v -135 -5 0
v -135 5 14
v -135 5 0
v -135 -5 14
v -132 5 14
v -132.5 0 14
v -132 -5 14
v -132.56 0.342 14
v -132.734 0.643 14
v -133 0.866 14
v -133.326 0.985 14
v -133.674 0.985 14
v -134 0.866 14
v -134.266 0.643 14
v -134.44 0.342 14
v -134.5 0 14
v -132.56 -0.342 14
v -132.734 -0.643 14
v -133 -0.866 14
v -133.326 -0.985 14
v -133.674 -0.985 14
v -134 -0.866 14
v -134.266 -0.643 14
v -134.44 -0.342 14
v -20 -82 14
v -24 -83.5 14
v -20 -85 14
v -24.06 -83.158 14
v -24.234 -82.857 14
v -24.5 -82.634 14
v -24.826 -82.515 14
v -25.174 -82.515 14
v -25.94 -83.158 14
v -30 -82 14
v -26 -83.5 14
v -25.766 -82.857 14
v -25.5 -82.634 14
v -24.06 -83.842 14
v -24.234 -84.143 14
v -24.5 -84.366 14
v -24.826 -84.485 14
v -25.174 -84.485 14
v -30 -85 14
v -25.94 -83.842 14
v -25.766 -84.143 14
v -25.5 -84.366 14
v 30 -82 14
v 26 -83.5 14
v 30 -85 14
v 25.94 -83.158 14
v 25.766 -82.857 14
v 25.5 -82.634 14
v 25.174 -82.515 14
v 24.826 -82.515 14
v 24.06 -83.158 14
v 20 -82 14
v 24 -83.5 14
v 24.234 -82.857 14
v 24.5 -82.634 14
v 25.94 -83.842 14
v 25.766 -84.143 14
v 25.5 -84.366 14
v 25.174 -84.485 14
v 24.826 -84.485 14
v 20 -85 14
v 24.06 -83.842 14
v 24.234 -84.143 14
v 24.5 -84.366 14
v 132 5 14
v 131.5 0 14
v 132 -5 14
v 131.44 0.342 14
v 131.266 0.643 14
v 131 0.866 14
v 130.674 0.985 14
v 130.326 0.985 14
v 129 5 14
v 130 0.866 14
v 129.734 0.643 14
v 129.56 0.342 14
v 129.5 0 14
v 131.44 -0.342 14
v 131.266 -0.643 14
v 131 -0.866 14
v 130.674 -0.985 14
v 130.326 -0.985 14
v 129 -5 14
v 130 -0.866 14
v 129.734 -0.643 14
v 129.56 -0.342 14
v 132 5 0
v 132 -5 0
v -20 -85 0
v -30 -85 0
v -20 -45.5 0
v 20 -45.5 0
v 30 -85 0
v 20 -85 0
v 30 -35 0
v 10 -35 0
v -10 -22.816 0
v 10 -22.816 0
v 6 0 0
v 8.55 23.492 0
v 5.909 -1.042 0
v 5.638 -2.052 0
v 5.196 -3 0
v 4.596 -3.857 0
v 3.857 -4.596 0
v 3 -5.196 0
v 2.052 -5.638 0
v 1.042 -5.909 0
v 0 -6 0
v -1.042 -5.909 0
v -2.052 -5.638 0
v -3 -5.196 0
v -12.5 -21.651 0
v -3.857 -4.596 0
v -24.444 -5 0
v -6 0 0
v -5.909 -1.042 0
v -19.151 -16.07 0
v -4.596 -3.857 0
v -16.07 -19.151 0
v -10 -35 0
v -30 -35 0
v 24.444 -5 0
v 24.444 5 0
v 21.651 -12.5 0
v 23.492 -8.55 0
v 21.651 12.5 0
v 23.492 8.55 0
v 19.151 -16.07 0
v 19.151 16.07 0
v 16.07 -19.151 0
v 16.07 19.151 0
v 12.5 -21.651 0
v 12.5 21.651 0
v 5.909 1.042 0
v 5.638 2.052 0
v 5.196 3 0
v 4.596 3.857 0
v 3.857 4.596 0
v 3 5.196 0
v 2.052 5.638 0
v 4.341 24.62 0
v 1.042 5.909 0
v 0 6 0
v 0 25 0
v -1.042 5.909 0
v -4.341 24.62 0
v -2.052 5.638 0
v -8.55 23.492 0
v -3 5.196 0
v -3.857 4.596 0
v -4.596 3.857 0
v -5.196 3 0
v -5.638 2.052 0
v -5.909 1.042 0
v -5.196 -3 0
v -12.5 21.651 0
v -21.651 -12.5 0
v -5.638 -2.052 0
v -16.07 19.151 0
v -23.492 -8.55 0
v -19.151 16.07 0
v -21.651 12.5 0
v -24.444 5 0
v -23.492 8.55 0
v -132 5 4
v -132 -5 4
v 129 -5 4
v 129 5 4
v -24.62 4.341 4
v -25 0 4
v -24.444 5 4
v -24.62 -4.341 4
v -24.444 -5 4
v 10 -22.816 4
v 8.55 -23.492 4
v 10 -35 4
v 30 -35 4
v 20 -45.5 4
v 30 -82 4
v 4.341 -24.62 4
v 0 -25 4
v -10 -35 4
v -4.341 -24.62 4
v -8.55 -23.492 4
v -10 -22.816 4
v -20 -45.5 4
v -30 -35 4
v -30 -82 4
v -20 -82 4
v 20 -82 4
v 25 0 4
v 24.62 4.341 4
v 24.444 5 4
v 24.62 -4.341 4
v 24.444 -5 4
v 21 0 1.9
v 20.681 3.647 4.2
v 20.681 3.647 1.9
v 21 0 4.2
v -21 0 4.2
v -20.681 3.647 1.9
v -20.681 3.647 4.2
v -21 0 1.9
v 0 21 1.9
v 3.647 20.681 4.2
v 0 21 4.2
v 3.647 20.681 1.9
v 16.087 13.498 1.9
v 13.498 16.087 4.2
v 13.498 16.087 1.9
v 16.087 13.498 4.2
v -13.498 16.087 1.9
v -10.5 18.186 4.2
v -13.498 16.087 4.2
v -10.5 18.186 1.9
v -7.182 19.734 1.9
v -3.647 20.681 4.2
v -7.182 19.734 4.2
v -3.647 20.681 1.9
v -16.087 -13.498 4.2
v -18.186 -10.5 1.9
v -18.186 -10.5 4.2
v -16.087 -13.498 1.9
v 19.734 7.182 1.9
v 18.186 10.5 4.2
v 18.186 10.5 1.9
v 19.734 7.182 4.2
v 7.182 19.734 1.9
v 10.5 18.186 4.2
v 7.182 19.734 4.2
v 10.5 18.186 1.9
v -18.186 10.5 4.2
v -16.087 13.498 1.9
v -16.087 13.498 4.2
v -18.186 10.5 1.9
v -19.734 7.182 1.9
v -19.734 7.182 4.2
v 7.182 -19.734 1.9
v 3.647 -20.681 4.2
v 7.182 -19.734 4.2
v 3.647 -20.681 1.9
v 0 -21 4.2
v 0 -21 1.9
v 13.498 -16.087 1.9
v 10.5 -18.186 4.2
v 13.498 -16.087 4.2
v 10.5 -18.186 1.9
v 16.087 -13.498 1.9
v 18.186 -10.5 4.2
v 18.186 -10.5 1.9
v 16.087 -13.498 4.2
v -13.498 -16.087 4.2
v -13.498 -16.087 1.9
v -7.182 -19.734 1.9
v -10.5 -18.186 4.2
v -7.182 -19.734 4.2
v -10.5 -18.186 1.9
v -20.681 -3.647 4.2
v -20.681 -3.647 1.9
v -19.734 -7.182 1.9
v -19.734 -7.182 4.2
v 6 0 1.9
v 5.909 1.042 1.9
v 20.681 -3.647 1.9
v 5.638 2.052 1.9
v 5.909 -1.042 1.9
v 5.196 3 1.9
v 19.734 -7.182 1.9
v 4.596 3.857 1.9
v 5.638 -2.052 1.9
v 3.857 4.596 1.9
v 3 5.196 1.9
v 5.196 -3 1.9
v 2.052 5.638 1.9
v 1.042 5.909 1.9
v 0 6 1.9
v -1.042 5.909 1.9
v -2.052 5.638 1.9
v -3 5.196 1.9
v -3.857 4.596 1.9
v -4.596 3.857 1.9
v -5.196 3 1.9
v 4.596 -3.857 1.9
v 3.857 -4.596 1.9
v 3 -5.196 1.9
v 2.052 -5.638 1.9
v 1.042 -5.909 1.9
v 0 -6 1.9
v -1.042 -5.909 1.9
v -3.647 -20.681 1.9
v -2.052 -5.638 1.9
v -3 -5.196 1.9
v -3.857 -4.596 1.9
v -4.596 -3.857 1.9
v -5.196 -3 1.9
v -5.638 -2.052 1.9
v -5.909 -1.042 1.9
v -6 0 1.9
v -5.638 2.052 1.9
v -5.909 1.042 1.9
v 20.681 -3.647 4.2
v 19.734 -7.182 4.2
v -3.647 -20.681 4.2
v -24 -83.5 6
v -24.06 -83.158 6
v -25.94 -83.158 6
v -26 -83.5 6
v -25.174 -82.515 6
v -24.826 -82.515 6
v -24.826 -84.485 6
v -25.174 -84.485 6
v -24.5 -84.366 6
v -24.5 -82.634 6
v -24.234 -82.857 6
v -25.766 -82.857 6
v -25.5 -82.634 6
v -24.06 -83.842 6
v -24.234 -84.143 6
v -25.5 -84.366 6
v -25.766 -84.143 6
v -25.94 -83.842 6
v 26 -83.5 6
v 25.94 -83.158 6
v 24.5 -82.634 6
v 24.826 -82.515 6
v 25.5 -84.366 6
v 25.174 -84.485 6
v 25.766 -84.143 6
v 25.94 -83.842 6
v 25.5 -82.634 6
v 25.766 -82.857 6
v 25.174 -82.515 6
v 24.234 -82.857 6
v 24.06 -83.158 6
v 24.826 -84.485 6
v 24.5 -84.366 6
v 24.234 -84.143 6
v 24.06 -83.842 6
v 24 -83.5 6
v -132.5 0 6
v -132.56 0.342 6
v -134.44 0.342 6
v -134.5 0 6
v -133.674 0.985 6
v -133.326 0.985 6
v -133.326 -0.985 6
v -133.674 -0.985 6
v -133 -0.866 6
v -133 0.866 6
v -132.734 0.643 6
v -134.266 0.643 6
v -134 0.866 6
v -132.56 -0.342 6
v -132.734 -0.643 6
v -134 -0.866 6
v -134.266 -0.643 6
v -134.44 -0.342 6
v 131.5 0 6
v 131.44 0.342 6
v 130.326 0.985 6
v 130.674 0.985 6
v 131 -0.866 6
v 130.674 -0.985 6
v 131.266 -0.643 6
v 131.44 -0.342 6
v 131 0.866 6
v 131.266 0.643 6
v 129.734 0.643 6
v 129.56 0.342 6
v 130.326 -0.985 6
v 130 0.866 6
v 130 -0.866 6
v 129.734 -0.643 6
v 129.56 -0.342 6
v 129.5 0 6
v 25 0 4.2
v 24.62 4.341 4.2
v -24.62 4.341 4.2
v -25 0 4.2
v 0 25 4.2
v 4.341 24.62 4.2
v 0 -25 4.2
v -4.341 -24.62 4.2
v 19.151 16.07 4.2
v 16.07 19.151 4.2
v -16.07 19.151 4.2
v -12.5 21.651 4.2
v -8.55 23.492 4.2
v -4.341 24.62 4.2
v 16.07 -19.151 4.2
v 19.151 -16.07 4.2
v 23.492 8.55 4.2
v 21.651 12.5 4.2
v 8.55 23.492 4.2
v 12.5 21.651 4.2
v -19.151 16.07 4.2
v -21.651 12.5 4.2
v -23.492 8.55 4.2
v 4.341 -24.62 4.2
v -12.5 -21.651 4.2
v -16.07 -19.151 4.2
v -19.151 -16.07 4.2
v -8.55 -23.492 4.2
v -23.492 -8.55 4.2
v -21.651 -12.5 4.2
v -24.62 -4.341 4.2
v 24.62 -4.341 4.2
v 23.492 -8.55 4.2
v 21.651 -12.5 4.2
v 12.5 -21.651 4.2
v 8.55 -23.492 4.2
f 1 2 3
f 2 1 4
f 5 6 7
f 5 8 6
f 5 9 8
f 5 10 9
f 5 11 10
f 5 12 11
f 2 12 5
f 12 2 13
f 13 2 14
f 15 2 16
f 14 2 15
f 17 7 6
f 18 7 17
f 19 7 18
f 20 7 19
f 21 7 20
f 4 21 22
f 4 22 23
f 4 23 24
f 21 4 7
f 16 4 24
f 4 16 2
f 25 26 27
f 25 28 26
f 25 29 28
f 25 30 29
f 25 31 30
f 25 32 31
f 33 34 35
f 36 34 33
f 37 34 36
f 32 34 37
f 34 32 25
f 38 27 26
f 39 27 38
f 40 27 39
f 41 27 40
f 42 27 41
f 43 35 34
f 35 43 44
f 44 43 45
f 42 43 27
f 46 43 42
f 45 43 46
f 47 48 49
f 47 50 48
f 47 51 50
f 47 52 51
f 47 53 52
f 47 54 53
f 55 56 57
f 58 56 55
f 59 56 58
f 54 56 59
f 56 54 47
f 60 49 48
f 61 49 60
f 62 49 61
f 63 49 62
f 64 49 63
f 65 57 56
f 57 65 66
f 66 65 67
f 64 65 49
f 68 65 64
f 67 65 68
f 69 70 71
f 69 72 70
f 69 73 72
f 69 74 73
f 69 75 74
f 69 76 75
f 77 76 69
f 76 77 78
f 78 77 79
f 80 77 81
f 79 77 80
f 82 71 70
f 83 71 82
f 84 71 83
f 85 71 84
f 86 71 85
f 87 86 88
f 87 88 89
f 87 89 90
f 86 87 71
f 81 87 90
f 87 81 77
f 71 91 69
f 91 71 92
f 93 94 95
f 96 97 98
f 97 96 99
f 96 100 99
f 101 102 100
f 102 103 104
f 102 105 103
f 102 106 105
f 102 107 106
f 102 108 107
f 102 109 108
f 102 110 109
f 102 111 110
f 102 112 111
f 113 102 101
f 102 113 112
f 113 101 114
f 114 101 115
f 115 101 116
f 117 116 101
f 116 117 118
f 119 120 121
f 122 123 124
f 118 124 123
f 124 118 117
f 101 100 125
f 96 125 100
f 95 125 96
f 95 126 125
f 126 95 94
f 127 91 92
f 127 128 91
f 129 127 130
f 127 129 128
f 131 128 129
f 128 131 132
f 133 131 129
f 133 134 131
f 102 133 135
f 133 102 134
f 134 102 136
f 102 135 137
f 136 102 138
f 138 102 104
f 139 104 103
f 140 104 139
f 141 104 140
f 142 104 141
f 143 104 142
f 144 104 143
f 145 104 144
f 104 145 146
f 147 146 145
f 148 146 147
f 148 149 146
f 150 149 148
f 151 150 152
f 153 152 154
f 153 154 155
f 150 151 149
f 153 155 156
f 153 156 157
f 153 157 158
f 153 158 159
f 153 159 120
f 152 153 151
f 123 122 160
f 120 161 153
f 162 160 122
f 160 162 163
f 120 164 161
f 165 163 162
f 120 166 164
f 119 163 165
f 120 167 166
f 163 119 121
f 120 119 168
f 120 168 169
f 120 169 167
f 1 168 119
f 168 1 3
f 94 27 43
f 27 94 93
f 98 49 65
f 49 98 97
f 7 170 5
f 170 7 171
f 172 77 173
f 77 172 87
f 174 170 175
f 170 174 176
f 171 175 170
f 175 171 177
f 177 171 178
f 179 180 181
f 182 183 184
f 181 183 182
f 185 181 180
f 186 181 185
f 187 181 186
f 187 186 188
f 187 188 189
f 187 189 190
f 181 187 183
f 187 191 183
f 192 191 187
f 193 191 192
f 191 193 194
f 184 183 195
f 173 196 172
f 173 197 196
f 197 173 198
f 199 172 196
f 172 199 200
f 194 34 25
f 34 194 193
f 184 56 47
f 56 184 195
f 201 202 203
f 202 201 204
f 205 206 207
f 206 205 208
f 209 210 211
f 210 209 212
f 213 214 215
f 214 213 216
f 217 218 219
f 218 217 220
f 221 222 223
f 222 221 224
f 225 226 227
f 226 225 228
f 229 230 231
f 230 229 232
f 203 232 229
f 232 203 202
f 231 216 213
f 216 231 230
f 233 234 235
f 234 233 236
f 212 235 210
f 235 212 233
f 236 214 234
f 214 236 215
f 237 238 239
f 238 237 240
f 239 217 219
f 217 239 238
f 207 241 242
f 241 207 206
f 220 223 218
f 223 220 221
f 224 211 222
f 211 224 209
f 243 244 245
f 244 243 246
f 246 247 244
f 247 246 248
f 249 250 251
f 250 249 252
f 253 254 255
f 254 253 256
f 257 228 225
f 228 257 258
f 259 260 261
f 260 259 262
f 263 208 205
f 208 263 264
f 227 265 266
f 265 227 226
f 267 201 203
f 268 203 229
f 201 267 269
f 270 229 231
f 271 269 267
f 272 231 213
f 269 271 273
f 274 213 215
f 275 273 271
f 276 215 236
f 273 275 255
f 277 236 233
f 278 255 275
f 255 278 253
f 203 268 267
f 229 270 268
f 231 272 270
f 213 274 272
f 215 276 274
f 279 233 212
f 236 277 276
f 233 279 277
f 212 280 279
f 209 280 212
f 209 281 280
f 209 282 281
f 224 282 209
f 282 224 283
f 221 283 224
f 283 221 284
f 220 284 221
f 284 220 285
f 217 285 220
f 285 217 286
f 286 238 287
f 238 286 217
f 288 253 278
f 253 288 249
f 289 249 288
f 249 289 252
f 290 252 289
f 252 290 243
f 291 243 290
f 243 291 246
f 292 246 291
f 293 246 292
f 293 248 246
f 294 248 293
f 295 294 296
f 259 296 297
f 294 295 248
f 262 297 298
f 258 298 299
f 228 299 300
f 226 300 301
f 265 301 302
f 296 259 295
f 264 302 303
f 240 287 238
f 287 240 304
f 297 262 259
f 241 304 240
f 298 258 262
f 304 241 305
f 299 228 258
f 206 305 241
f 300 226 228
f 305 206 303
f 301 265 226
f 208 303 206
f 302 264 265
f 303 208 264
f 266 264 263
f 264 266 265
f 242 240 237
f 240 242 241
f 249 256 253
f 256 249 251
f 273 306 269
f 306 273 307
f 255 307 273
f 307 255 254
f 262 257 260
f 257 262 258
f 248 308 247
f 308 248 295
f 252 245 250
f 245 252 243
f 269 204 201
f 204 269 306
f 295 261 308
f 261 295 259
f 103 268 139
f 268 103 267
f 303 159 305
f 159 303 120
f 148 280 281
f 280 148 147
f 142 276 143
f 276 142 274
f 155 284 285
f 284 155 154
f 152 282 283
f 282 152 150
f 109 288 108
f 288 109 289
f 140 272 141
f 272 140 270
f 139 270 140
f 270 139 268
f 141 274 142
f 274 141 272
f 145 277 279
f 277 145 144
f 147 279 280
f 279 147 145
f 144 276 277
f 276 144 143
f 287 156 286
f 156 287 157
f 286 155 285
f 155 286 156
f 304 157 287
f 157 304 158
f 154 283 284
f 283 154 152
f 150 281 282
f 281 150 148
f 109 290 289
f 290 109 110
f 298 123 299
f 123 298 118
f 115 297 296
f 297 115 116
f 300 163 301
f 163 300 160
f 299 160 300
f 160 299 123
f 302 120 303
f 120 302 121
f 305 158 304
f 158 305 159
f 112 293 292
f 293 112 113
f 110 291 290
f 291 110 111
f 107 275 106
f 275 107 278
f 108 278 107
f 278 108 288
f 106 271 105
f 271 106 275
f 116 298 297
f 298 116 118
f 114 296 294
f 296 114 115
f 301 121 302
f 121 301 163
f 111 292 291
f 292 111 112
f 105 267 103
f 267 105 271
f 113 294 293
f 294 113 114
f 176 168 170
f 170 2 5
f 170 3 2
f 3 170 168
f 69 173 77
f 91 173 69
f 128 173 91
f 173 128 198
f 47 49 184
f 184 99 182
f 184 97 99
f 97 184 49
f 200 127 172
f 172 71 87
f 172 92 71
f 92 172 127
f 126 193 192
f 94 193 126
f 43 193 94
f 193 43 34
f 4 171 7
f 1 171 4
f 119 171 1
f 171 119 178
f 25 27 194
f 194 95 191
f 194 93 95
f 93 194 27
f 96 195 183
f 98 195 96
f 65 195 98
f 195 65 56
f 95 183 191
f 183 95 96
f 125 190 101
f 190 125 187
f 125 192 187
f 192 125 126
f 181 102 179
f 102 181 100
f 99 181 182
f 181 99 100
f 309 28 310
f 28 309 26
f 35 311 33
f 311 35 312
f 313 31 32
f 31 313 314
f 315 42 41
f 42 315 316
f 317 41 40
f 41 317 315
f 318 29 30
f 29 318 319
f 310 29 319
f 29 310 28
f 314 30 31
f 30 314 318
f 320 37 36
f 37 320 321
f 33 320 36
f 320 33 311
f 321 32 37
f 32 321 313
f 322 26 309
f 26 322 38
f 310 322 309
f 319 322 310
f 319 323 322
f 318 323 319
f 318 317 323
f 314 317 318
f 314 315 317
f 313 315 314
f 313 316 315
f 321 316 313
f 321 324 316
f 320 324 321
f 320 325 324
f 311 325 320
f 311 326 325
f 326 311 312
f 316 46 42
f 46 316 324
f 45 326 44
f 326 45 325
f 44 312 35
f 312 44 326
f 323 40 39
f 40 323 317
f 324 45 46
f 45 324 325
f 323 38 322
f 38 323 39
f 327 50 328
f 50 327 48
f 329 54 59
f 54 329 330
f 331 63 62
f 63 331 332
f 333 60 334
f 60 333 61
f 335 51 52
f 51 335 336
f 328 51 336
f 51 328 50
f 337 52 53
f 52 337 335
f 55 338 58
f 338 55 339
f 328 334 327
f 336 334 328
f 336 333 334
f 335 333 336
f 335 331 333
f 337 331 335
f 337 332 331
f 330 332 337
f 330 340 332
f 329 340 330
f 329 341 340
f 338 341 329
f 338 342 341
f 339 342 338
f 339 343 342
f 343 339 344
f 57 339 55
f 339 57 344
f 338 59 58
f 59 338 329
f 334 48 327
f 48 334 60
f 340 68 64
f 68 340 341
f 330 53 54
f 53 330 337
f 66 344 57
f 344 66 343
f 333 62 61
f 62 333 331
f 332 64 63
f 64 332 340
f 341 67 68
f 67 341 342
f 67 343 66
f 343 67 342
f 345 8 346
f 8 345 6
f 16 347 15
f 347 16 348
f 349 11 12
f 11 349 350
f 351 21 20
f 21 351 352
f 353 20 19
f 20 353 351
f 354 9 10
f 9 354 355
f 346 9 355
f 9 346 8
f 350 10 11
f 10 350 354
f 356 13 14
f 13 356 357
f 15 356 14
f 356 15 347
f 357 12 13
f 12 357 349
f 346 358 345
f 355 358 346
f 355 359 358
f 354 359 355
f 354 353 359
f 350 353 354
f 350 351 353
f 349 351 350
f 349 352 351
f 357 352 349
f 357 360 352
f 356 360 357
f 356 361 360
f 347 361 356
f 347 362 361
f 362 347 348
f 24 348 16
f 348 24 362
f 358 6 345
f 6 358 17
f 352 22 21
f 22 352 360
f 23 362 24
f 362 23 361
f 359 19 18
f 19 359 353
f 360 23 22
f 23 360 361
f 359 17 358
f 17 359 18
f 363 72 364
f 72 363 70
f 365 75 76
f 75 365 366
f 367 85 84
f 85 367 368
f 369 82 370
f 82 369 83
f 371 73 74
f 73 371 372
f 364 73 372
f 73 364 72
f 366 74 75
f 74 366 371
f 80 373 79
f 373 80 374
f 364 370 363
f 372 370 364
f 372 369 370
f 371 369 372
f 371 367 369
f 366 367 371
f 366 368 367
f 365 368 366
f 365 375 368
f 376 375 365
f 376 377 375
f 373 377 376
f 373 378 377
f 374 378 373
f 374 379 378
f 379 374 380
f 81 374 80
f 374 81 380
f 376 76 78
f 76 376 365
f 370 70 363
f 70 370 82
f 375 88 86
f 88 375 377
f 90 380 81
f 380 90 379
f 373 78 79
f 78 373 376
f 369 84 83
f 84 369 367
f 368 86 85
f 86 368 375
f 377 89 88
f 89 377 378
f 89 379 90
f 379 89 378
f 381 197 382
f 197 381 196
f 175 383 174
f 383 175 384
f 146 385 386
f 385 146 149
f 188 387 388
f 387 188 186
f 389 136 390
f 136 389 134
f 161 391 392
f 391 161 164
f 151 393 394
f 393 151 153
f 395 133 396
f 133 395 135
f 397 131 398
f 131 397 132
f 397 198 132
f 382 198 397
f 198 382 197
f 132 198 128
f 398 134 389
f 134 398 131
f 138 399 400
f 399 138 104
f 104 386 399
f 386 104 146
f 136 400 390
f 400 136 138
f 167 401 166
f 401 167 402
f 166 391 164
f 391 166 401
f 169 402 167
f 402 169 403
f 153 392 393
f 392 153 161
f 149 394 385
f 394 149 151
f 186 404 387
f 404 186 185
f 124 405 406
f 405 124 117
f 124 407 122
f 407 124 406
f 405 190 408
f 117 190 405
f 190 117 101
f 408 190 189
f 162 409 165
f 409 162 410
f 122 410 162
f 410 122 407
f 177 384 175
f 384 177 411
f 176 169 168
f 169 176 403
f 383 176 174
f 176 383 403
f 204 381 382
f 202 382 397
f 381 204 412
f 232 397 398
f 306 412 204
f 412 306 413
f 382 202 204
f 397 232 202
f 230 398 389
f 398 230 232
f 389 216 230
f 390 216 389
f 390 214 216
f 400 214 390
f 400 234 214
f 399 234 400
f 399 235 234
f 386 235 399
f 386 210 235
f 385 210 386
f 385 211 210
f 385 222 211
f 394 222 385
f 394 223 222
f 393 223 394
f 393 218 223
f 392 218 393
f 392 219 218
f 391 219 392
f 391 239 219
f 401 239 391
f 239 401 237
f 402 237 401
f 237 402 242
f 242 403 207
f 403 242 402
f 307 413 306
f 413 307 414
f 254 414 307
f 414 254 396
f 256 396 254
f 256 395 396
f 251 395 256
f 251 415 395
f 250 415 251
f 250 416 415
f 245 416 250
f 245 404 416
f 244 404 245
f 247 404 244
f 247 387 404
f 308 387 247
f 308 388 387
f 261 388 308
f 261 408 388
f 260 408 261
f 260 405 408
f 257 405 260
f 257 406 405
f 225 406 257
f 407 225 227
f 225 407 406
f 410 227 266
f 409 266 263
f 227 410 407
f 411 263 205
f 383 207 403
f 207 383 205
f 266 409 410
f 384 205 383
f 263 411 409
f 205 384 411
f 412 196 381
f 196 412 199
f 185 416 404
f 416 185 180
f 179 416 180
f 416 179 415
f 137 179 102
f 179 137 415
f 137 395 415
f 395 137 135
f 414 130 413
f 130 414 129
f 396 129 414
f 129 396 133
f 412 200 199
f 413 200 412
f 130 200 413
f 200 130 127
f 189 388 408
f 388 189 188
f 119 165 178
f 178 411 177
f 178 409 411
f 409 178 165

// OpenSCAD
    // These are the outside dimensions of the tablet
    coef = 10;
    
    width=16.1*coef; // 161
    height=26.1*coef; // 261
    thickness=1*coef;
    
    
    difference() {
    
    union() {
    
    difference() {
    
    translate([-(height+1.2*coef)/2+.15*coef,-(width+1.2*coef)/2+.3*coef,0]) {
        
    // cube général, extrude pour avoir les crochets au bout des bras
    difference() {
        translate([0,-.15*coef,0]) cube([height+0.6*coef,width+1.2*coef,thickness+0.4*coef]);
        translate([0.3*coef,0.15*coef,0.4*coef]) cube([height,width,thickness+0.4*coef]);
    }
    }
    union() {
         // on supprime le bras en y+
        translate([0,width/2+1.5*coef,0]) cube([height*2,width,thickness+10*coef],center=true);
        
        translate([-10.5*coef,10.5*coef,.8*coef]) cube([20*coef,20*coef,thickness+.7*coef],center=true);
        translate([10.5*coef,10.5*coef,.8*coef]) cube([20*coef,20*coef,thickness+.7*coef],center=true);
        
        translate([13*coef,-9*coef,.8*coef]) cube([20*coef,17*coef,thickness+.7*coef],center=true);
        translate([-13*coef,-9*coef,.8*coef]) cube([20*coef,17*coef,thickness+.7*coef],center=true);
        
        translate([0,width/2+2.5*coef,.8*coef]) cube([8*coef,4*coef,thickness+.7*coef],center=true);
        translate([0,-width/2-2.5*coef,.8*coef]) cube([4*coef,12*coef,thickness+.7*coef],center=true);
        
        translate([-7*coef,-2*coef,.8]) cube([12*coef,3*coef,thickness+.7],center=true);
        translate([7*coef,-2*coef,.8]) cube([12*coef,3*coef,thickness+.7],center=true);
        //translate([-10.5*coef,-10.5*coef,.8]) cube([20*coef,20*coef,thickness+.7],center=true);
        //translate([height/4-1.5*coef,-11*coef,.8]) cube([height/2-4*coef,20*coef,thickness+.7],center=true);
        //translate([height/4-1.5*coef,11*coef,.8]) cube([height/2-4*coef,20*coef,thickness+.7],center=true);
        
       

        //translate([9*coef,-13*coef,.8]) cube([14*coef,20*coef,thickness+.7],center=true);
        //translate([9*coef,13*coef,.8]) cube([14*coef,20*coef,thickness+.7],center=true);
        //translate([height/2+2.5*coef,0,.8]) cube([8*coef,4*coef,thickness+.7],center=true);
        //translate([0,-width/2-.3*coef,1.1]) cylinder(h=1*coef,r=0.1*coef,$fn=18,center=true);
        //translate([0,width/2+.3*coef,1.1]) cylinder(h=1*coef,r=0.1*coef,$fn=18,center=true);
        
        // double bras
        /*translate([9*coef,-13*coef,.8]) cube([14*coef,20*coef,thickness+.7],center=true);
        translate([9*coef,13*coef,.8]) cube([14*coef,20*coef,thickness+.7],center=true);
        translate([height/2+2.5*coef,0,.8]) cube([8*coef,4*coef,thickness+.7],center=true);
        translate([0,-width/2-.3*coef,1.1]) cylinder(h=1*coef,r=0.1*coef,$fn=18,center=true);
        translate([0,width/2+.3*coef,1.1]) cylinder(h=1*coef,r=0.1*coef,$fn=18,center=true);*/
       
        translate([-2.5*coef,-width/2-.3*coef,1.1*coef]) cylinder(h=1*coef,r=0.1*coef,$fn=18,center=true);
        translate([2.5*coef,-width/2-.3*coef,1.1*coef]) cylinder(h=1*coef,r=0.1*coef,$fn=18,center=true);
        translate([-height/2-.3*coef,0,1.1*coef]) cylinder(h=1*coef,r=0.1*coef,$fn=18,center=true);
        translate([height/2,0,1.1*coef]) cylinder(h=1*coef,r=0.1*coef,$fn=18,center=true);
    }
    }
    translate([0,0,.21*coef]) cylinder(h=.42*coef,r=2.5*coef,$fn=36,center=true);
    }
    union() {
    translate([0,0,.4*coef]) cylinder(h=.42*coef,r=2.1*coef,$fn=36,center=true);
    translate([0,0,0]) cylinder(h=.8*coef,r=0.6*coef,$fn=36,center=true);
    }
    }
//translate([height/2+.1*coef,0,1.1*coef]) cylinder(h=1*coef,r=0.1*coef,$fn=18,center=true);
